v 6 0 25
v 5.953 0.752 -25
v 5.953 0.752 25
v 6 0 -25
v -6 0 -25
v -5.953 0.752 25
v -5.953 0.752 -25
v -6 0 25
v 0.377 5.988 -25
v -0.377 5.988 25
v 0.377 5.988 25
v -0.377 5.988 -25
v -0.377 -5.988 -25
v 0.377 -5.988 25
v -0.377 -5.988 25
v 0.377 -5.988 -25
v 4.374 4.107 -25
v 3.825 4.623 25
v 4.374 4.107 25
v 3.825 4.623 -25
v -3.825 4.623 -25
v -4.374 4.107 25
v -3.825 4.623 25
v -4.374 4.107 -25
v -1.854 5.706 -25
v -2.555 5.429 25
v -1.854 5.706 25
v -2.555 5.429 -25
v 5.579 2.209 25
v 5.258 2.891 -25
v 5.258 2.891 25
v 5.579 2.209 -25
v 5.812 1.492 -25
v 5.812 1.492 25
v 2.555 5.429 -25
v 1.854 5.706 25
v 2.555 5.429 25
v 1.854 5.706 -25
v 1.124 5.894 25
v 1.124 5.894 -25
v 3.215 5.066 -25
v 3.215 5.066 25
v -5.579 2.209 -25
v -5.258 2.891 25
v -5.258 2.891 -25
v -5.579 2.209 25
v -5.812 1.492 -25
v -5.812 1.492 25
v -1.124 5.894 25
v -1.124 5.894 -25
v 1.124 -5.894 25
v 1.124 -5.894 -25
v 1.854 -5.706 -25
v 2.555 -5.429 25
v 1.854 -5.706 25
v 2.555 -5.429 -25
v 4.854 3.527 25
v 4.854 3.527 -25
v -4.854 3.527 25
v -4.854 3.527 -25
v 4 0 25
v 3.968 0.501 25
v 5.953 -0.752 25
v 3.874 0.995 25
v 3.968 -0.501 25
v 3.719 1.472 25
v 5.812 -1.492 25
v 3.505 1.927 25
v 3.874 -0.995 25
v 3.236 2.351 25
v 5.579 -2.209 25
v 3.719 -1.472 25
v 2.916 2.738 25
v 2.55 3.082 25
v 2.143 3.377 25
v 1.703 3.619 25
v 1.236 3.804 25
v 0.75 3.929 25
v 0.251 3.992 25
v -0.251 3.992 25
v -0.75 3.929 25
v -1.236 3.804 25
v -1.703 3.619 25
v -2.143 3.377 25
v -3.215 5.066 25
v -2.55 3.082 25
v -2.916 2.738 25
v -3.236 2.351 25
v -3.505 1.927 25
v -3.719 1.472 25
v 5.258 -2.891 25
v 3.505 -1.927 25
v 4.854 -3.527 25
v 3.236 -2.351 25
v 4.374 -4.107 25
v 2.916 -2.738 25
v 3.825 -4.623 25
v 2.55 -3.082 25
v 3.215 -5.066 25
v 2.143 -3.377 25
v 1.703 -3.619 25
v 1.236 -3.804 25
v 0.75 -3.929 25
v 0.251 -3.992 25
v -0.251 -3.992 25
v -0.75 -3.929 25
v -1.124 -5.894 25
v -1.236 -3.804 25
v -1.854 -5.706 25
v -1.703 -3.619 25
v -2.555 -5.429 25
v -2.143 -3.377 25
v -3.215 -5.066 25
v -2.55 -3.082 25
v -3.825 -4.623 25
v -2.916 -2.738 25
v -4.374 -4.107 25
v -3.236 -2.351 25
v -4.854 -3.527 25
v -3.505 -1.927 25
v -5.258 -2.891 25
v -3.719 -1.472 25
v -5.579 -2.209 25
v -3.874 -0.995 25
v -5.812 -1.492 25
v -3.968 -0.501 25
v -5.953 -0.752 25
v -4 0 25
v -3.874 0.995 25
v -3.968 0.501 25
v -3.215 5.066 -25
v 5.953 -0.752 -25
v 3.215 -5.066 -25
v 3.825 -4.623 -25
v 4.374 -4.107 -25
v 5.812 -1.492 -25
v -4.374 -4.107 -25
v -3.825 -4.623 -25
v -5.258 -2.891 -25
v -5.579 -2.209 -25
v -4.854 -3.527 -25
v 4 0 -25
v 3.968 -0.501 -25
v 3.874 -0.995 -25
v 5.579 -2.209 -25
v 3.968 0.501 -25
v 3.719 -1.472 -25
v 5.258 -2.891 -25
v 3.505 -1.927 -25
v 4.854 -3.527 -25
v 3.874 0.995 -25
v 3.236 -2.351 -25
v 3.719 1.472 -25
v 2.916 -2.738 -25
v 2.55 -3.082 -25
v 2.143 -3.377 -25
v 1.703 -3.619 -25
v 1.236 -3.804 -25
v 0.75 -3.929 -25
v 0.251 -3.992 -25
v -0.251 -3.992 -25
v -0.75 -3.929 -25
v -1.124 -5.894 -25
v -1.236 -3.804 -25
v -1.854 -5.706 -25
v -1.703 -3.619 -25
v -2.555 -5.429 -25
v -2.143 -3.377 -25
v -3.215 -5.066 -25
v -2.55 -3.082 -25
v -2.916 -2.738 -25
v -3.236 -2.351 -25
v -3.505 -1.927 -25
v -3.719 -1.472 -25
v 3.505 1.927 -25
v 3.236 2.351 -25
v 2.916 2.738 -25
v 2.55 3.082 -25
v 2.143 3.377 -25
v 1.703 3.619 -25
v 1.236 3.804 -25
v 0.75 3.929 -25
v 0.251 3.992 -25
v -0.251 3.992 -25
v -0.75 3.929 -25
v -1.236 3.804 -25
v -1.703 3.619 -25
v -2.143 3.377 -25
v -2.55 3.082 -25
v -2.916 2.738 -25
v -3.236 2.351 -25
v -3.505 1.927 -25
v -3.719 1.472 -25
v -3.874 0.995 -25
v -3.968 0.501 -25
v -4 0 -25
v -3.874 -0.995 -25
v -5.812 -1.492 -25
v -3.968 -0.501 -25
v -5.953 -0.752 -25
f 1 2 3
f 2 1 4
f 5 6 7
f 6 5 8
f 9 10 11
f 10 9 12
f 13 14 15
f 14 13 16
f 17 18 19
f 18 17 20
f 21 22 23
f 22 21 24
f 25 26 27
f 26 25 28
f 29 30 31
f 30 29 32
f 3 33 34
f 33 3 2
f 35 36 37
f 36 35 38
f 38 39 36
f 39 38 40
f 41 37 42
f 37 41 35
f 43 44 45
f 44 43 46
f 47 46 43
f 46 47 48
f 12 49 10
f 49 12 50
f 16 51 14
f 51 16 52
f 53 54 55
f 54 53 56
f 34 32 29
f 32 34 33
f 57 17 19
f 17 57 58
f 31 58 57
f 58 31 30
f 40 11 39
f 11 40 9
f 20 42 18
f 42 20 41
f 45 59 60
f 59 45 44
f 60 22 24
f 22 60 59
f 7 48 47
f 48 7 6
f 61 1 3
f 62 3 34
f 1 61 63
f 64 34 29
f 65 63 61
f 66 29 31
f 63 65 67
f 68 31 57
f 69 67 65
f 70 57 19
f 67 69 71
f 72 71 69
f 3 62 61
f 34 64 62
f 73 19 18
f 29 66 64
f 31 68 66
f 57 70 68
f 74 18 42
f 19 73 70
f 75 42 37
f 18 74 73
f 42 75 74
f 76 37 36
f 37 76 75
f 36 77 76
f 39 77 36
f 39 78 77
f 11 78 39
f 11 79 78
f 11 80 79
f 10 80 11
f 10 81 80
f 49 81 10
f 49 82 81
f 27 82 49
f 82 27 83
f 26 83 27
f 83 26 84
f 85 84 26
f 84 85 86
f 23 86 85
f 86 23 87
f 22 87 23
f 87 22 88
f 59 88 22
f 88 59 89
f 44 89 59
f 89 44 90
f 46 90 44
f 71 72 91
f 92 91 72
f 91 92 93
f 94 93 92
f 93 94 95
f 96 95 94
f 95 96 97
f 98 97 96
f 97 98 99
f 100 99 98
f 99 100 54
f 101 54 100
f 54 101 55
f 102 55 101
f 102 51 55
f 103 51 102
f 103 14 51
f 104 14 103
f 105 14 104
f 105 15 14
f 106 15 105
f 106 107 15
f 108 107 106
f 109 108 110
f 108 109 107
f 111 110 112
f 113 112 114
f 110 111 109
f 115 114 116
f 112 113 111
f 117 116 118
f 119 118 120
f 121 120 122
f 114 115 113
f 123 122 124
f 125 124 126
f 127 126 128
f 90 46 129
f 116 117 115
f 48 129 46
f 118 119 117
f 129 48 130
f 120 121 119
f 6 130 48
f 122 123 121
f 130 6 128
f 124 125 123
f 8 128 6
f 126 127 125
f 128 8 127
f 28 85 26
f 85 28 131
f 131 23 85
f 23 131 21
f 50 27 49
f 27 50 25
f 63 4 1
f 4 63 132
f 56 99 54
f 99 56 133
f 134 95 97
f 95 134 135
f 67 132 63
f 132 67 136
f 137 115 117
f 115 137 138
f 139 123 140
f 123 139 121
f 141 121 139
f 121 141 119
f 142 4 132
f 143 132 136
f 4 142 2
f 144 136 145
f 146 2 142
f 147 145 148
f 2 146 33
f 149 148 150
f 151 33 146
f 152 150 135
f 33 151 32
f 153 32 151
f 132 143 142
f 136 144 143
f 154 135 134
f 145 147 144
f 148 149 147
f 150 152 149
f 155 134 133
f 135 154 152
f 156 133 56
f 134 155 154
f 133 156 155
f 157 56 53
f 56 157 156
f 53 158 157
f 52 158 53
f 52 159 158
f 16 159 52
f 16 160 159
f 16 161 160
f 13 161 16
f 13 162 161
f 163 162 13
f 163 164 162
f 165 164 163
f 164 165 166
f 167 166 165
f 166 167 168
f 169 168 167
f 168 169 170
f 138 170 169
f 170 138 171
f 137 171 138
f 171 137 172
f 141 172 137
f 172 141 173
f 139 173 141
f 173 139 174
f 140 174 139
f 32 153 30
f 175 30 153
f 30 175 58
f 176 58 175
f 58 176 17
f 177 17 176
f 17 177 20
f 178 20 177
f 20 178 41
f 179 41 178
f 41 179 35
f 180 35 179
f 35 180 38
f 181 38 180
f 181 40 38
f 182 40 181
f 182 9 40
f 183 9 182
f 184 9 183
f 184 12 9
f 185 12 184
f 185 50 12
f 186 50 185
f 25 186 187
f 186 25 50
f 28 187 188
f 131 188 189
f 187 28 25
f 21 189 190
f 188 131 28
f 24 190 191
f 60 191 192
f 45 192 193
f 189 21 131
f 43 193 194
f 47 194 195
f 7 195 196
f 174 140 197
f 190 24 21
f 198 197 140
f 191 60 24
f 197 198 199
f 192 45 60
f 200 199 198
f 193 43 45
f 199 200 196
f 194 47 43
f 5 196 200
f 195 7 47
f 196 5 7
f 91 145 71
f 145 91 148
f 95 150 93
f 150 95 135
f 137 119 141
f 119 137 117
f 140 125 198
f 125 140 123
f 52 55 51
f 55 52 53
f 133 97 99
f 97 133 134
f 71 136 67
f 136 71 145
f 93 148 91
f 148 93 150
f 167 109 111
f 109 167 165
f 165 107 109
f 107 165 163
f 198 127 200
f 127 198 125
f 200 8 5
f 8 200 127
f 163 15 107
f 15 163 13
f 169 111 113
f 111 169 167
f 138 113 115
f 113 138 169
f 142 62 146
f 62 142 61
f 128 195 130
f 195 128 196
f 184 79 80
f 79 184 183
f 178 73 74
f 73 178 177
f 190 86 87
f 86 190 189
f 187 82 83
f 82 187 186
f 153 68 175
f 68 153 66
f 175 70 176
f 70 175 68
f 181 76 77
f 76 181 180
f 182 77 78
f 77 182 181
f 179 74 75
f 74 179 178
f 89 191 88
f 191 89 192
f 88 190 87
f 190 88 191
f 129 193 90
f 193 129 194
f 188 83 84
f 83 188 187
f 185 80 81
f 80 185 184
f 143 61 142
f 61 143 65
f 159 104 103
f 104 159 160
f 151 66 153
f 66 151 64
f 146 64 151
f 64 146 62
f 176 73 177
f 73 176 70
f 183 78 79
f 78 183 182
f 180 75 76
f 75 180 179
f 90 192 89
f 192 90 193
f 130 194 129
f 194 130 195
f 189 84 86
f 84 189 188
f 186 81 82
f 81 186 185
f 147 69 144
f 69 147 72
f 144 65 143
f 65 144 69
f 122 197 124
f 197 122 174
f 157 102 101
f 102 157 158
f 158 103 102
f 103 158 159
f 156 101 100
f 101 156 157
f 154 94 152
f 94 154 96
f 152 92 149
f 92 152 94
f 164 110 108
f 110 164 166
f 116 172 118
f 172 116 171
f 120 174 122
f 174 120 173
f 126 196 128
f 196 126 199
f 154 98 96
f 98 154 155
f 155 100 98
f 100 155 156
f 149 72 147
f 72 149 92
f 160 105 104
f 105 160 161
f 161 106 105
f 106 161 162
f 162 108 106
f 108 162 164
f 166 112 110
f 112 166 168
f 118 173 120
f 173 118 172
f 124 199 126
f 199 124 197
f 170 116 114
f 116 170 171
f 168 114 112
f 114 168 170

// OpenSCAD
$fn = 50;


difference() {
	union() {
		translate(v = [0, 0, -25.0000000000]) {
			cylinder(h = 50, r = 6.0000000000);
		}
	}
	union() {
		translate(v = [0, 0, -100.0000000000]) {
			cylinder(h = 200, r = 4);
		}
	}
}
